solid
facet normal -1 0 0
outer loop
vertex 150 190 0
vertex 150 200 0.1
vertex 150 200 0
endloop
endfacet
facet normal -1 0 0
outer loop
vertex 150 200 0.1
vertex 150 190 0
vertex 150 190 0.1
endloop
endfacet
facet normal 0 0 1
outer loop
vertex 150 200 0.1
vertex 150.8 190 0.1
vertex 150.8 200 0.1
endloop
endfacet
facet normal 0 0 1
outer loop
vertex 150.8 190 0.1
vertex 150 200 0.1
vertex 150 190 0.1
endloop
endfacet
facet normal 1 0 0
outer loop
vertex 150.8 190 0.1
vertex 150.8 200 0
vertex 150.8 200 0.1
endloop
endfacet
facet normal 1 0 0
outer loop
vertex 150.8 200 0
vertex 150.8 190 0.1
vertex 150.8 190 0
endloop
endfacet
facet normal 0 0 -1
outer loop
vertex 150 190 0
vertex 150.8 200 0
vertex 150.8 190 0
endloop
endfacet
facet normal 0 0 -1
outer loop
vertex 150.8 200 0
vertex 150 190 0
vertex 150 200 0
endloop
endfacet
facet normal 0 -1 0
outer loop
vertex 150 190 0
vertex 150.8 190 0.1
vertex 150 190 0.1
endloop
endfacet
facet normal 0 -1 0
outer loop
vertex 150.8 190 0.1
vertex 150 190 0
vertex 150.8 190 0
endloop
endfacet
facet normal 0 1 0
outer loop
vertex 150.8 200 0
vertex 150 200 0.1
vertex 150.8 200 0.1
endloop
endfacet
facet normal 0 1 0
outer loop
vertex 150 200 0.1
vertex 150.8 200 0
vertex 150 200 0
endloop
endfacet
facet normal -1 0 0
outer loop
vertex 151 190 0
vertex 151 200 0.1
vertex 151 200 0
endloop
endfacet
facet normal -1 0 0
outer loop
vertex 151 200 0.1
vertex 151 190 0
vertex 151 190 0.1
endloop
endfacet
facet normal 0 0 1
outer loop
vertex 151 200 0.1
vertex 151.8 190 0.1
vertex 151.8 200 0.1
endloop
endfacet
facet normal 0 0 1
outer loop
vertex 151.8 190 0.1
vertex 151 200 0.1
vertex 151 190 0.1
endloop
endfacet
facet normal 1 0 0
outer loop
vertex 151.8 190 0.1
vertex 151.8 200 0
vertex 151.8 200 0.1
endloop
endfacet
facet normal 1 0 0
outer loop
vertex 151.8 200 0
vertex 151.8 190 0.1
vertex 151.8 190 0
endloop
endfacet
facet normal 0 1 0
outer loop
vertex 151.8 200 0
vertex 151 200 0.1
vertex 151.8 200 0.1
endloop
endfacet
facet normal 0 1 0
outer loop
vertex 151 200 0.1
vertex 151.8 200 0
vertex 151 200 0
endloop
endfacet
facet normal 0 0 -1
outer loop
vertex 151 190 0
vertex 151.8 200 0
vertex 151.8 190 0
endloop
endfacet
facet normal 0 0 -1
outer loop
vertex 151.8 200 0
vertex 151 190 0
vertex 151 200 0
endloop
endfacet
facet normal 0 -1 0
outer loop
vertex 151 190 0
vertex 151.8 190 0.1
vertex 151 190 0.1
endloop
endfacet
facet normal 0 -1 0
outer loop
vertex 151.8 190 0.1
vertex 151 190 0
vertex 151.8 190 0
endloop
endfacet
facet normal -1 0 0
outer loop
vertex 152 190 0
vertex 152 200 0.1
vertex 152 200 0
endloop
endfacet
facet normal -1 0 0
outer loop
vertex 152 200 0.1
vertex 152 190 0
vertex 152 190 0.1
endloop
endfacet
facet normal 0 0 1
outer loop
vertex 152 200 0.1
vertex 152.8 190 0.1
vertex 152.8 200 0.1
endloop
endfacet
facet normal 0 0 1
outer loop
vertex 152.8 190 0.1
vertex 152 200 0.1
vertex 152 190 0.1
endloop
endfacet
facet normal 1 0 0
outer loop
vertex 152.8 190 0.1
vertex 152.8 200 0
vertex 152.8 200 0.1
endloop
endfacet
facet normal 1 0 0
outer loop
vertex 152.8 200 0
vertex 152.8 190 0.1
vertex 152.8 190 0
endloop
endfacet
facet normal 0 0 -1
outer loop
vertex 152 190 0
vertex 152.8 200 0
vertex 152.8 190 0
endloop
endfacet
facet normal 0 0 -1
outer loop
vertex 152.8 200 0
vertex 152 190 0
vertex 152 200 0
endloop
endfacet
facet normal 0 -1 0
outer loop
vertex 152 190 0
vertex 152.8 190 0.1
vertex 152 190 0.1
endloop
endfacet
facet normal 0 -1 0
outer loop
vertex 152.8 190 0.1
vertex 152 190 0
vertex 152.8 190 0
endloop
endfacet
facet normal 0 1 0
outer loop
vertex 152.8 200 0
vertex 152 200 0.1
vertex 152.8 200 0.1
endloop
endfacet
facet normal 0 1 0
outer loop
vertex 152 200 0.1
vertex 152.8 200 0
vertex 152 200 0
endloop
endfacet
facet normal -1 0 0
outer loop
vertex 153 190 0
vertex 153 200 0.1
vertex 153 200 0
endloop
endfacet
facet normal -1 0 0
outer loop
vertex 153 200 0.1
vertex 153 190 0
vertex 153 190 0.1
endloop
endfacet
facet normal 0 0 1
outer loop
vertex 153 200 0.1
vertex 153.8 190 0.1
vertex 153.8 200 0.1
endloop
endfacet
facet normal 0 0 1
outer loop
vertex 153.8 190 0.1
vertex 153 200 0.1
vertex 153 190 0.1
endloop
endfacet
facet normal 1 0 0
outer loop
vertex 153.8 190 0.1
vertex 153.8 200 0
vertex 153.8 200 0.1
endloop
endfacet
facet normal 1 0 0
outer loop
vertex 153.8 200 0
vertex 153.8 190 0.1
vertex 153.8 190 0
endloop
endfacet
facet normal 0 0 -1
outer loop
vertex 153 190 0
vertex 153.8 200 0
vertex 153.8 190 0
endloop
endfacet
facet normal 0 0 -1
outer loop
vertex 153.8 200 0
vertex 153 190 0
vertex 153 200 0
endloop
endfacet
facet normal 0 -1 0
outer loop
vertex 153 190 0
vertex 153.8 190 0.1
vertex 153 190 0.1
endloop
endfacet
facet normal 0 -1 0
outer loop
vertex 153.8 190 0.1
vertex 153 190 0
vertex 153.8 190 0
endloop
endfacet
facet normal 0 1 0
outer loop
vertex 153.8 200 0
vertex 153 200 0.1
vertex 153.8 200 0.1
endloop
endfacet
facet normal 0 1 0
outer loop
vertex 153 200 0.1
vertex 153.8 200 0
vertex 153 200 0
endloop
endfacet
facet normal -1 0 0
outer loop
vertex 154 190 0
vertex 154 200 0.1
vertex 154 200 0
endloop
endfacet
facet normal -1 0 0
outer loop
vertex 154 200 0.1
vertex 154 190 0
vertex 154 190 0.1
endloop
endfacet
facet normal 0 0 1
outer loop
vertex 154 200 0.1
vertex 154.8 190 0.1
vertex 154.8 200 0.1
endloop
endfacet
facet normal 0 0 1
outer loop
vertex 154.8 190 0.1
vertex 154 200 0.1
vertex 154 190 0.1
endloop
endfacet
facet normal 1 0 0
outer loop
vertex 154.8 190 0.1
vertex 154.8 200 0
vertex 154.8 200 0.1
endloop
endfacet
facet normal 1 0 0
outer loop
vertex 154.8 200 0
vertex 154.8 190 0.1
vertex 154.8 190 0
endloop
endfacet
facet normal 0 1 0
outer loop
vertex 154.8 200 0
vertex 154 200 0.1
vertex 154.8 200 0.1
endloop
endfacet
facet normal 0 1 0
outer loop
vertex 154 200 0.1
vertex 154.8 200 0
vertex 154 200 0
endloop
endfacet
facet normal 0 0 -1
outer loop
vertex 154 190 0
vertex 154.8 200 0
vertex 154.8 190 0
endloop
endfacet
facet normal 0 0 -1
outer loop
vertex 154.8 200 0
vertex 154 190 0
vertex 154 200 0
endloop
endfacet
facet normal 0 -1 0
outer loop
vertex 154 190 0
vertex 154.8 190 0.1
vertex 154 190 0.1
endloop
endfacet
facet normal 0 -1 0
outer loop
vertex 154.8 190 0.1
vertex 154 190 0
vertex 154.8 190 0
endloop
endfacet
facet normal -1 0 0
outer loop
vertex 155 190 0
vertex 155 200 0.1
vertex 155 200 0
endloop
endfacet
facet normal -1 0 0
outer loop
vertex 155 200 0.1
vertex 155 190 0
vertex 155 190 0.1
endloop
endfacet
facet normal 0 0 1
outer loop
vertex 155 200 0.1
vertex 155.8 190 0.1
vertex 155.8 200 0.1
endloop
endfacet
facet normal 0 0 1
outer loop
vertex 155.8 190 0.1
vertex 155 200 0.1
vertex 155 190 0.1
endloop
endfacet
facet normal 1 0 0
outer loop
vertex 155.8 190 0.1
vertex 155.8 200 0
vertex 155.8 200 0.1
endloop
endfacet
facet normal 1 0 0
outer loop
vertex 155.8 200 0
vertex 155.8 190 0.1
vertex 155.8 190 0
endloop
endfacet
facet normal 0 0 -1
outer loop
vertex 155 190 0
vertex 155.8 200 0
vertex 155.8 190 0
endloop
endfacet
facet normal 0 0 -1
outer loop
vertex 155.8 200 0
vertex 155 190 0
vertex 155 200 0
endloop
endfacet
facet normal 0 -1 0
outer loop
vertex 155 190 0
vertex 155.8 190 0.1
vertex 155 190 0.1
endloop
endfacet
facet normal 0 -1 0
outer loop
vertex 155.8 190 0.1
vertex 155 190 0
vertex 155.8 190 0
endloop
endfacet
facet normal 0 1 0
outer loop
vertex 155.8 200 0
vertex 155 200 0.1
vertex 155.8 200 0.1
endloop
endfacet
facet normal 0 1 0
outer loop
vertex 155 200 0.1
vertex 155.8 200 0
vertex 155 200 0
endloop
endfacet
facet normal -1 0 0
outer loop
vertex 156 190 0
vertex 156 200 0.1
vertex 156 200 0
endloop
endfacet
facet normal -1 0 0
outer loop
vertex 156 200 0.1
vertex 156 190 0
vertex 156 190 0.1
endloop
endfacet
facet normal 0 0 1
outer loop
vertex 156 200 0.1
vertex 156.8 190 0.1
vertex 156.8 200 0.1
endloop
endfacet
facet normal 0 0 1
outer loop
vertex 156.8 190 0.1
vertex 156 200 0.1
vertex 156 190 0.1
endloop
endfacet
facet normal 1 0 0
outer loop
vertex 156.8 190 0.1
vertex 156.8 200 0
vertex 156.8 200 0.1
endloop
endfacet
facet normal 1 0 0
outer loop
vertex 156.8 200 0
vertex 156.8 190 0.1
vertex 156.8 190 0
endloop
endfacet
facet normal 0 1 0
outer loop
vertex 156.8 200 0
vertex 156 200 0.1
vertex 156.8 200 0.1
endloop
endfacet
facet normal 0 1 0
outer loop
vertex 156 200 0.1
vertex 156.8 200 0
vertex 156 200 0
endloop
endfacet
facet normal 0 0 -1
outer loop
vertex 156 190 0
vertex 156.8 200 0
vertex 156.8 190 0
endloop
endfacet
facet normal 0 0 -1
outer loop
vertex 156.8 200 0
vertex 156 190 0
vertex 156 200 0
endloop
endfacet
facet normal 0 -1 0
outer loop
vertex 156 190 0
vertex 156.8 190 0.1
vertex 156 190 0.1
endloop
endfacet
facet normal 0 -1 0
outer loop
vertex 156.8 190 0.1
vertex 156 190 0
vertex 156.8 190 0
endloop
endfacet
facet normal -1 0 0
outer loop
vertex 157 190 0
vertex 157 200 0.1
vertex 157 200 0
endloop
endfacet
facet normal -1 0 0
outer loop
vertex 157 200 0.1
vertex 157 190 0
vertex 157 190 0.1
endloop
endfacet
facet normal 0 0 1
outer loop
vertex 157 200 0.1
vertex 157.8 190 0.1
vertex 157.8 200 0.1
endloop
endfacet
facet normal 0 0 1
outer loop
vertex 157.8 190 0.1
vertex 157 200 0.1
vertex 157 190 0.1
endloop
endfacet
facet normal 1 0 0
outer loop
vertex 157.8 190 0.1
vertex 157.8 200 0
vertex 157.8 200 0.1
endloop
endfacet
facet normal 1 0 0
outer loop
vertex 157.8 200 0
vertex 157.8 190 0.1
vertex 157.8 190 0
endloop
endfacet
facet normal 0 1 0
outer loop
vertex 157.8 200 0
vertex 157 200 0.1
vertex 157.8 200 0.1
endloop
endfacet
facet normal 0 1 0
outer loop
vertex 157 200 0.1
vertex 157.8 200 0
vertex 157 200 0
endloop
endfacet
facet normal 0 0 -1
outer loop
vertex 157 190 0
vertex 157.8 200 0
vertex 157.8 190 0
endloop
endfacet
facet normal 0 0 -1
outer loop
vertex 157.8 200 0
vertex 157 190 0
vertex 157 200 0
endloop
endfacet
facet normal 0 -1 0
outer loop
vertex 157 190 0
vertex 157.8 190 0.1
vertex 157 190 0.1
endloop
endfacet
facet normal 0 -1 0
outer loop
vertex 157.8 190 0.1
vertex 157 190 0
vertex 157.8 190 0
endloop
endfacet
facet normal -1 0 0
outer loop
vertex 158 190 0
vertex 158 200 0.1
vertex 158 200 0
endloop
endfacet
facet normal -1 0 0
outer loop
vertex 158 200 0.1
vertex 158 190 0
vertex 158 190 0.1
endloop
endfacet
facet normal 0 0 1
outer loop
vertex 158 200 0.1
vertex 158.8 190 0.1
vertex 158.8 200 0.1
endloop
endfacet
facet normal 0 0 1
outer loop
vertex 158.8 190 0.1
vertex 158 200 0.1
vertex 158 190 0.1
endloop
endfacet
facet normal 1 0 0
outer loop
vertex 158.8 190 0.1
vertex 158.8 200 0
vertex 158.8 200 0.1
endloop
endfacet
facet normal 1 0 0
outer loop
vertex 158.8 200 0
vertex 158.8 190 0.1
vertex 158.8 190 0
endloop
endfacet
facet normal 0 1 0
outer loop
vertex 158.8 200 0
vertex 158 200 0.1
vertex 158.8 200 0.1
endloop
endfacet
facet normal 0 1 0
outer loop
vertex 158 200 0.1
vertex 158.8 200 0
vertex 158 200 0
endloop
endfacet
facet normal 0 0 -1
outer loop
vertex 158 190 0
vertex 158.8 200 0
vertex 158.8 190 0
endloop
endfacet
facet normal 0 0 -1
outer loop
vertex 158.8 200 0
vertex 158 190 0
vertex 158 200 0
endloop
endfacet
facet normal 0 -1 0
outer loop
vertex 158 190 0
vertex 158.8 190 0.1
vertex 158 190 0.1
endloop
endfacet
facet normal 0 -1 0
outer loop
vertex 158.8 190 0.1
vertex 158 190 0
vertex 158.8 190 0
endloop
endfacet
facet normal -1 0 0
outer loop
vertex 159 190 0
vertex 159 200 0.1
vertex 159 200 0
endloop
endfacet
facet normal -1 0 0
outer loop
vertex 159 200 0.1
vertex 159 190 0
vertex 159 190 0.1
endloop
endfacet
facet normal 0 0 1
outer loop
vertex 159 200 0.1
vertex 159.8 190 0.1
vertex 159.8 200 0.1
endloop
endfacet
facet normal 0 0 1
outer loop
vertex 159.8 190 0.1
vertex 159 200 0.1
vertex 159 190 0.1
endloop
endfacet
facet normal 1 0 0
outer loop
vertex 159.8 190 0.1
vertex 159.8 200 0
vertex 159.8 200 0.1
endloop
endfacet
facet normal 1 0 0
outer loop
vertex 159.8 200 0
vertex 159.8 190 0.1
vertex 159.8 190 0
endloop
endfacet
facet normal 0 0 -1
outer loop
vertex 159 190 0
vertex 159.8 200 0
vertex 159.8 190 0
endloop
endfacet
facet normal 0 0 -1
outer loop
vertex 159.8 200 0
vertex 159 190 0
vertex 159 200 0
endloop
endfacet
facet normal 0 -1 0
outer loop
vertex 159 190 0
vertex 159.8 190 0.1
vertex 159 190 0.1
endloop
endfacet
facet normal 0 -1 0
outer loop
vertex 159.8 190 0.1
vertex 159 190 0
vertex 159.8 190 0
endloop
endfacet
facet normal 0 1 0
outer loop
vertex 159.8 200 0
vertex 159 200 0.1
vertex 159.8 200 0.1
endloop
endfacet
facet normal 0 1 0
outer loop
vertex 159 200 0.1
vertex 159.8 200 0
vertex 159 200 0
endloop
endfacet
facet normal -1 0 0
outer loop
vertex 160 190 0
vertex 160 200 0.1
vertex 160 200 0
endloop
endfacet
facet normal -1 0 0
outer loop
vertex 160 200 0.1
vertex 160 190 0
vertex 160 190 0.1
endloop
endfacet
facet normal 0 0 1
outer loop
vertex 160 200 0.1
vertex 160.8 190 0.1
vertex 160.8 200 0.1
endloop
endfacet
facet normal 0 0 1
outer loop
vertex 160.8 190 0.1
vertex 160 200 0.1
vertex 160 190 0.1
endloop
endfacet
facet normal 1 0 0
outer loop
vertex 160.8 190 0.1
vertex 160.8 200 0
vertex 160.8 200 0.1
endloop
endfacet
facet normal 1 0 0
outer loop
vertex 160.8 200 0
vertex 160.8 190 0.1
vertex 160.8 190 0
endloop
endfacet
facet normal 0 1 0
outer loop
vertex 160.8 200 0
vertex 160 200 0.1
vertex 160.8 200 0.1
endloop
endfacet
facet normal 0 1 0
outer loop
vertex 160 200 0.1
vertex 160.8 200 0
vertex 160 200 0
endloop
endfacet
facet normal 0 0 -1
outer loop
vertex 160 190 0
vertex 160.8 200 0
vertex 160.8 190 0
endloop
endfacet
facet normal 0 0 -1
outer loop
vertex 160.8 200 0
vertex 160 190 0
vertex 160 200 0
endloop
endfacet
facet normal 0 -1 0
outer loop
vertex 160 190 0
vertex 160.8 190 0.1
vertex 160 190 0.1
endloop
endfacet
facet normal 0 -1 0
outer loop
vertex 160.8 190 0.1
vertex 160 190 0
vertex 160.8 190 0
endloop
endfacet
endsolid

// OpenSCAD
translate([10+140,10+180,0])
        for (i = [0 : 10]){
            translate([i,0,0])
                cube(size = [0.8,10,0.1]);
    }
